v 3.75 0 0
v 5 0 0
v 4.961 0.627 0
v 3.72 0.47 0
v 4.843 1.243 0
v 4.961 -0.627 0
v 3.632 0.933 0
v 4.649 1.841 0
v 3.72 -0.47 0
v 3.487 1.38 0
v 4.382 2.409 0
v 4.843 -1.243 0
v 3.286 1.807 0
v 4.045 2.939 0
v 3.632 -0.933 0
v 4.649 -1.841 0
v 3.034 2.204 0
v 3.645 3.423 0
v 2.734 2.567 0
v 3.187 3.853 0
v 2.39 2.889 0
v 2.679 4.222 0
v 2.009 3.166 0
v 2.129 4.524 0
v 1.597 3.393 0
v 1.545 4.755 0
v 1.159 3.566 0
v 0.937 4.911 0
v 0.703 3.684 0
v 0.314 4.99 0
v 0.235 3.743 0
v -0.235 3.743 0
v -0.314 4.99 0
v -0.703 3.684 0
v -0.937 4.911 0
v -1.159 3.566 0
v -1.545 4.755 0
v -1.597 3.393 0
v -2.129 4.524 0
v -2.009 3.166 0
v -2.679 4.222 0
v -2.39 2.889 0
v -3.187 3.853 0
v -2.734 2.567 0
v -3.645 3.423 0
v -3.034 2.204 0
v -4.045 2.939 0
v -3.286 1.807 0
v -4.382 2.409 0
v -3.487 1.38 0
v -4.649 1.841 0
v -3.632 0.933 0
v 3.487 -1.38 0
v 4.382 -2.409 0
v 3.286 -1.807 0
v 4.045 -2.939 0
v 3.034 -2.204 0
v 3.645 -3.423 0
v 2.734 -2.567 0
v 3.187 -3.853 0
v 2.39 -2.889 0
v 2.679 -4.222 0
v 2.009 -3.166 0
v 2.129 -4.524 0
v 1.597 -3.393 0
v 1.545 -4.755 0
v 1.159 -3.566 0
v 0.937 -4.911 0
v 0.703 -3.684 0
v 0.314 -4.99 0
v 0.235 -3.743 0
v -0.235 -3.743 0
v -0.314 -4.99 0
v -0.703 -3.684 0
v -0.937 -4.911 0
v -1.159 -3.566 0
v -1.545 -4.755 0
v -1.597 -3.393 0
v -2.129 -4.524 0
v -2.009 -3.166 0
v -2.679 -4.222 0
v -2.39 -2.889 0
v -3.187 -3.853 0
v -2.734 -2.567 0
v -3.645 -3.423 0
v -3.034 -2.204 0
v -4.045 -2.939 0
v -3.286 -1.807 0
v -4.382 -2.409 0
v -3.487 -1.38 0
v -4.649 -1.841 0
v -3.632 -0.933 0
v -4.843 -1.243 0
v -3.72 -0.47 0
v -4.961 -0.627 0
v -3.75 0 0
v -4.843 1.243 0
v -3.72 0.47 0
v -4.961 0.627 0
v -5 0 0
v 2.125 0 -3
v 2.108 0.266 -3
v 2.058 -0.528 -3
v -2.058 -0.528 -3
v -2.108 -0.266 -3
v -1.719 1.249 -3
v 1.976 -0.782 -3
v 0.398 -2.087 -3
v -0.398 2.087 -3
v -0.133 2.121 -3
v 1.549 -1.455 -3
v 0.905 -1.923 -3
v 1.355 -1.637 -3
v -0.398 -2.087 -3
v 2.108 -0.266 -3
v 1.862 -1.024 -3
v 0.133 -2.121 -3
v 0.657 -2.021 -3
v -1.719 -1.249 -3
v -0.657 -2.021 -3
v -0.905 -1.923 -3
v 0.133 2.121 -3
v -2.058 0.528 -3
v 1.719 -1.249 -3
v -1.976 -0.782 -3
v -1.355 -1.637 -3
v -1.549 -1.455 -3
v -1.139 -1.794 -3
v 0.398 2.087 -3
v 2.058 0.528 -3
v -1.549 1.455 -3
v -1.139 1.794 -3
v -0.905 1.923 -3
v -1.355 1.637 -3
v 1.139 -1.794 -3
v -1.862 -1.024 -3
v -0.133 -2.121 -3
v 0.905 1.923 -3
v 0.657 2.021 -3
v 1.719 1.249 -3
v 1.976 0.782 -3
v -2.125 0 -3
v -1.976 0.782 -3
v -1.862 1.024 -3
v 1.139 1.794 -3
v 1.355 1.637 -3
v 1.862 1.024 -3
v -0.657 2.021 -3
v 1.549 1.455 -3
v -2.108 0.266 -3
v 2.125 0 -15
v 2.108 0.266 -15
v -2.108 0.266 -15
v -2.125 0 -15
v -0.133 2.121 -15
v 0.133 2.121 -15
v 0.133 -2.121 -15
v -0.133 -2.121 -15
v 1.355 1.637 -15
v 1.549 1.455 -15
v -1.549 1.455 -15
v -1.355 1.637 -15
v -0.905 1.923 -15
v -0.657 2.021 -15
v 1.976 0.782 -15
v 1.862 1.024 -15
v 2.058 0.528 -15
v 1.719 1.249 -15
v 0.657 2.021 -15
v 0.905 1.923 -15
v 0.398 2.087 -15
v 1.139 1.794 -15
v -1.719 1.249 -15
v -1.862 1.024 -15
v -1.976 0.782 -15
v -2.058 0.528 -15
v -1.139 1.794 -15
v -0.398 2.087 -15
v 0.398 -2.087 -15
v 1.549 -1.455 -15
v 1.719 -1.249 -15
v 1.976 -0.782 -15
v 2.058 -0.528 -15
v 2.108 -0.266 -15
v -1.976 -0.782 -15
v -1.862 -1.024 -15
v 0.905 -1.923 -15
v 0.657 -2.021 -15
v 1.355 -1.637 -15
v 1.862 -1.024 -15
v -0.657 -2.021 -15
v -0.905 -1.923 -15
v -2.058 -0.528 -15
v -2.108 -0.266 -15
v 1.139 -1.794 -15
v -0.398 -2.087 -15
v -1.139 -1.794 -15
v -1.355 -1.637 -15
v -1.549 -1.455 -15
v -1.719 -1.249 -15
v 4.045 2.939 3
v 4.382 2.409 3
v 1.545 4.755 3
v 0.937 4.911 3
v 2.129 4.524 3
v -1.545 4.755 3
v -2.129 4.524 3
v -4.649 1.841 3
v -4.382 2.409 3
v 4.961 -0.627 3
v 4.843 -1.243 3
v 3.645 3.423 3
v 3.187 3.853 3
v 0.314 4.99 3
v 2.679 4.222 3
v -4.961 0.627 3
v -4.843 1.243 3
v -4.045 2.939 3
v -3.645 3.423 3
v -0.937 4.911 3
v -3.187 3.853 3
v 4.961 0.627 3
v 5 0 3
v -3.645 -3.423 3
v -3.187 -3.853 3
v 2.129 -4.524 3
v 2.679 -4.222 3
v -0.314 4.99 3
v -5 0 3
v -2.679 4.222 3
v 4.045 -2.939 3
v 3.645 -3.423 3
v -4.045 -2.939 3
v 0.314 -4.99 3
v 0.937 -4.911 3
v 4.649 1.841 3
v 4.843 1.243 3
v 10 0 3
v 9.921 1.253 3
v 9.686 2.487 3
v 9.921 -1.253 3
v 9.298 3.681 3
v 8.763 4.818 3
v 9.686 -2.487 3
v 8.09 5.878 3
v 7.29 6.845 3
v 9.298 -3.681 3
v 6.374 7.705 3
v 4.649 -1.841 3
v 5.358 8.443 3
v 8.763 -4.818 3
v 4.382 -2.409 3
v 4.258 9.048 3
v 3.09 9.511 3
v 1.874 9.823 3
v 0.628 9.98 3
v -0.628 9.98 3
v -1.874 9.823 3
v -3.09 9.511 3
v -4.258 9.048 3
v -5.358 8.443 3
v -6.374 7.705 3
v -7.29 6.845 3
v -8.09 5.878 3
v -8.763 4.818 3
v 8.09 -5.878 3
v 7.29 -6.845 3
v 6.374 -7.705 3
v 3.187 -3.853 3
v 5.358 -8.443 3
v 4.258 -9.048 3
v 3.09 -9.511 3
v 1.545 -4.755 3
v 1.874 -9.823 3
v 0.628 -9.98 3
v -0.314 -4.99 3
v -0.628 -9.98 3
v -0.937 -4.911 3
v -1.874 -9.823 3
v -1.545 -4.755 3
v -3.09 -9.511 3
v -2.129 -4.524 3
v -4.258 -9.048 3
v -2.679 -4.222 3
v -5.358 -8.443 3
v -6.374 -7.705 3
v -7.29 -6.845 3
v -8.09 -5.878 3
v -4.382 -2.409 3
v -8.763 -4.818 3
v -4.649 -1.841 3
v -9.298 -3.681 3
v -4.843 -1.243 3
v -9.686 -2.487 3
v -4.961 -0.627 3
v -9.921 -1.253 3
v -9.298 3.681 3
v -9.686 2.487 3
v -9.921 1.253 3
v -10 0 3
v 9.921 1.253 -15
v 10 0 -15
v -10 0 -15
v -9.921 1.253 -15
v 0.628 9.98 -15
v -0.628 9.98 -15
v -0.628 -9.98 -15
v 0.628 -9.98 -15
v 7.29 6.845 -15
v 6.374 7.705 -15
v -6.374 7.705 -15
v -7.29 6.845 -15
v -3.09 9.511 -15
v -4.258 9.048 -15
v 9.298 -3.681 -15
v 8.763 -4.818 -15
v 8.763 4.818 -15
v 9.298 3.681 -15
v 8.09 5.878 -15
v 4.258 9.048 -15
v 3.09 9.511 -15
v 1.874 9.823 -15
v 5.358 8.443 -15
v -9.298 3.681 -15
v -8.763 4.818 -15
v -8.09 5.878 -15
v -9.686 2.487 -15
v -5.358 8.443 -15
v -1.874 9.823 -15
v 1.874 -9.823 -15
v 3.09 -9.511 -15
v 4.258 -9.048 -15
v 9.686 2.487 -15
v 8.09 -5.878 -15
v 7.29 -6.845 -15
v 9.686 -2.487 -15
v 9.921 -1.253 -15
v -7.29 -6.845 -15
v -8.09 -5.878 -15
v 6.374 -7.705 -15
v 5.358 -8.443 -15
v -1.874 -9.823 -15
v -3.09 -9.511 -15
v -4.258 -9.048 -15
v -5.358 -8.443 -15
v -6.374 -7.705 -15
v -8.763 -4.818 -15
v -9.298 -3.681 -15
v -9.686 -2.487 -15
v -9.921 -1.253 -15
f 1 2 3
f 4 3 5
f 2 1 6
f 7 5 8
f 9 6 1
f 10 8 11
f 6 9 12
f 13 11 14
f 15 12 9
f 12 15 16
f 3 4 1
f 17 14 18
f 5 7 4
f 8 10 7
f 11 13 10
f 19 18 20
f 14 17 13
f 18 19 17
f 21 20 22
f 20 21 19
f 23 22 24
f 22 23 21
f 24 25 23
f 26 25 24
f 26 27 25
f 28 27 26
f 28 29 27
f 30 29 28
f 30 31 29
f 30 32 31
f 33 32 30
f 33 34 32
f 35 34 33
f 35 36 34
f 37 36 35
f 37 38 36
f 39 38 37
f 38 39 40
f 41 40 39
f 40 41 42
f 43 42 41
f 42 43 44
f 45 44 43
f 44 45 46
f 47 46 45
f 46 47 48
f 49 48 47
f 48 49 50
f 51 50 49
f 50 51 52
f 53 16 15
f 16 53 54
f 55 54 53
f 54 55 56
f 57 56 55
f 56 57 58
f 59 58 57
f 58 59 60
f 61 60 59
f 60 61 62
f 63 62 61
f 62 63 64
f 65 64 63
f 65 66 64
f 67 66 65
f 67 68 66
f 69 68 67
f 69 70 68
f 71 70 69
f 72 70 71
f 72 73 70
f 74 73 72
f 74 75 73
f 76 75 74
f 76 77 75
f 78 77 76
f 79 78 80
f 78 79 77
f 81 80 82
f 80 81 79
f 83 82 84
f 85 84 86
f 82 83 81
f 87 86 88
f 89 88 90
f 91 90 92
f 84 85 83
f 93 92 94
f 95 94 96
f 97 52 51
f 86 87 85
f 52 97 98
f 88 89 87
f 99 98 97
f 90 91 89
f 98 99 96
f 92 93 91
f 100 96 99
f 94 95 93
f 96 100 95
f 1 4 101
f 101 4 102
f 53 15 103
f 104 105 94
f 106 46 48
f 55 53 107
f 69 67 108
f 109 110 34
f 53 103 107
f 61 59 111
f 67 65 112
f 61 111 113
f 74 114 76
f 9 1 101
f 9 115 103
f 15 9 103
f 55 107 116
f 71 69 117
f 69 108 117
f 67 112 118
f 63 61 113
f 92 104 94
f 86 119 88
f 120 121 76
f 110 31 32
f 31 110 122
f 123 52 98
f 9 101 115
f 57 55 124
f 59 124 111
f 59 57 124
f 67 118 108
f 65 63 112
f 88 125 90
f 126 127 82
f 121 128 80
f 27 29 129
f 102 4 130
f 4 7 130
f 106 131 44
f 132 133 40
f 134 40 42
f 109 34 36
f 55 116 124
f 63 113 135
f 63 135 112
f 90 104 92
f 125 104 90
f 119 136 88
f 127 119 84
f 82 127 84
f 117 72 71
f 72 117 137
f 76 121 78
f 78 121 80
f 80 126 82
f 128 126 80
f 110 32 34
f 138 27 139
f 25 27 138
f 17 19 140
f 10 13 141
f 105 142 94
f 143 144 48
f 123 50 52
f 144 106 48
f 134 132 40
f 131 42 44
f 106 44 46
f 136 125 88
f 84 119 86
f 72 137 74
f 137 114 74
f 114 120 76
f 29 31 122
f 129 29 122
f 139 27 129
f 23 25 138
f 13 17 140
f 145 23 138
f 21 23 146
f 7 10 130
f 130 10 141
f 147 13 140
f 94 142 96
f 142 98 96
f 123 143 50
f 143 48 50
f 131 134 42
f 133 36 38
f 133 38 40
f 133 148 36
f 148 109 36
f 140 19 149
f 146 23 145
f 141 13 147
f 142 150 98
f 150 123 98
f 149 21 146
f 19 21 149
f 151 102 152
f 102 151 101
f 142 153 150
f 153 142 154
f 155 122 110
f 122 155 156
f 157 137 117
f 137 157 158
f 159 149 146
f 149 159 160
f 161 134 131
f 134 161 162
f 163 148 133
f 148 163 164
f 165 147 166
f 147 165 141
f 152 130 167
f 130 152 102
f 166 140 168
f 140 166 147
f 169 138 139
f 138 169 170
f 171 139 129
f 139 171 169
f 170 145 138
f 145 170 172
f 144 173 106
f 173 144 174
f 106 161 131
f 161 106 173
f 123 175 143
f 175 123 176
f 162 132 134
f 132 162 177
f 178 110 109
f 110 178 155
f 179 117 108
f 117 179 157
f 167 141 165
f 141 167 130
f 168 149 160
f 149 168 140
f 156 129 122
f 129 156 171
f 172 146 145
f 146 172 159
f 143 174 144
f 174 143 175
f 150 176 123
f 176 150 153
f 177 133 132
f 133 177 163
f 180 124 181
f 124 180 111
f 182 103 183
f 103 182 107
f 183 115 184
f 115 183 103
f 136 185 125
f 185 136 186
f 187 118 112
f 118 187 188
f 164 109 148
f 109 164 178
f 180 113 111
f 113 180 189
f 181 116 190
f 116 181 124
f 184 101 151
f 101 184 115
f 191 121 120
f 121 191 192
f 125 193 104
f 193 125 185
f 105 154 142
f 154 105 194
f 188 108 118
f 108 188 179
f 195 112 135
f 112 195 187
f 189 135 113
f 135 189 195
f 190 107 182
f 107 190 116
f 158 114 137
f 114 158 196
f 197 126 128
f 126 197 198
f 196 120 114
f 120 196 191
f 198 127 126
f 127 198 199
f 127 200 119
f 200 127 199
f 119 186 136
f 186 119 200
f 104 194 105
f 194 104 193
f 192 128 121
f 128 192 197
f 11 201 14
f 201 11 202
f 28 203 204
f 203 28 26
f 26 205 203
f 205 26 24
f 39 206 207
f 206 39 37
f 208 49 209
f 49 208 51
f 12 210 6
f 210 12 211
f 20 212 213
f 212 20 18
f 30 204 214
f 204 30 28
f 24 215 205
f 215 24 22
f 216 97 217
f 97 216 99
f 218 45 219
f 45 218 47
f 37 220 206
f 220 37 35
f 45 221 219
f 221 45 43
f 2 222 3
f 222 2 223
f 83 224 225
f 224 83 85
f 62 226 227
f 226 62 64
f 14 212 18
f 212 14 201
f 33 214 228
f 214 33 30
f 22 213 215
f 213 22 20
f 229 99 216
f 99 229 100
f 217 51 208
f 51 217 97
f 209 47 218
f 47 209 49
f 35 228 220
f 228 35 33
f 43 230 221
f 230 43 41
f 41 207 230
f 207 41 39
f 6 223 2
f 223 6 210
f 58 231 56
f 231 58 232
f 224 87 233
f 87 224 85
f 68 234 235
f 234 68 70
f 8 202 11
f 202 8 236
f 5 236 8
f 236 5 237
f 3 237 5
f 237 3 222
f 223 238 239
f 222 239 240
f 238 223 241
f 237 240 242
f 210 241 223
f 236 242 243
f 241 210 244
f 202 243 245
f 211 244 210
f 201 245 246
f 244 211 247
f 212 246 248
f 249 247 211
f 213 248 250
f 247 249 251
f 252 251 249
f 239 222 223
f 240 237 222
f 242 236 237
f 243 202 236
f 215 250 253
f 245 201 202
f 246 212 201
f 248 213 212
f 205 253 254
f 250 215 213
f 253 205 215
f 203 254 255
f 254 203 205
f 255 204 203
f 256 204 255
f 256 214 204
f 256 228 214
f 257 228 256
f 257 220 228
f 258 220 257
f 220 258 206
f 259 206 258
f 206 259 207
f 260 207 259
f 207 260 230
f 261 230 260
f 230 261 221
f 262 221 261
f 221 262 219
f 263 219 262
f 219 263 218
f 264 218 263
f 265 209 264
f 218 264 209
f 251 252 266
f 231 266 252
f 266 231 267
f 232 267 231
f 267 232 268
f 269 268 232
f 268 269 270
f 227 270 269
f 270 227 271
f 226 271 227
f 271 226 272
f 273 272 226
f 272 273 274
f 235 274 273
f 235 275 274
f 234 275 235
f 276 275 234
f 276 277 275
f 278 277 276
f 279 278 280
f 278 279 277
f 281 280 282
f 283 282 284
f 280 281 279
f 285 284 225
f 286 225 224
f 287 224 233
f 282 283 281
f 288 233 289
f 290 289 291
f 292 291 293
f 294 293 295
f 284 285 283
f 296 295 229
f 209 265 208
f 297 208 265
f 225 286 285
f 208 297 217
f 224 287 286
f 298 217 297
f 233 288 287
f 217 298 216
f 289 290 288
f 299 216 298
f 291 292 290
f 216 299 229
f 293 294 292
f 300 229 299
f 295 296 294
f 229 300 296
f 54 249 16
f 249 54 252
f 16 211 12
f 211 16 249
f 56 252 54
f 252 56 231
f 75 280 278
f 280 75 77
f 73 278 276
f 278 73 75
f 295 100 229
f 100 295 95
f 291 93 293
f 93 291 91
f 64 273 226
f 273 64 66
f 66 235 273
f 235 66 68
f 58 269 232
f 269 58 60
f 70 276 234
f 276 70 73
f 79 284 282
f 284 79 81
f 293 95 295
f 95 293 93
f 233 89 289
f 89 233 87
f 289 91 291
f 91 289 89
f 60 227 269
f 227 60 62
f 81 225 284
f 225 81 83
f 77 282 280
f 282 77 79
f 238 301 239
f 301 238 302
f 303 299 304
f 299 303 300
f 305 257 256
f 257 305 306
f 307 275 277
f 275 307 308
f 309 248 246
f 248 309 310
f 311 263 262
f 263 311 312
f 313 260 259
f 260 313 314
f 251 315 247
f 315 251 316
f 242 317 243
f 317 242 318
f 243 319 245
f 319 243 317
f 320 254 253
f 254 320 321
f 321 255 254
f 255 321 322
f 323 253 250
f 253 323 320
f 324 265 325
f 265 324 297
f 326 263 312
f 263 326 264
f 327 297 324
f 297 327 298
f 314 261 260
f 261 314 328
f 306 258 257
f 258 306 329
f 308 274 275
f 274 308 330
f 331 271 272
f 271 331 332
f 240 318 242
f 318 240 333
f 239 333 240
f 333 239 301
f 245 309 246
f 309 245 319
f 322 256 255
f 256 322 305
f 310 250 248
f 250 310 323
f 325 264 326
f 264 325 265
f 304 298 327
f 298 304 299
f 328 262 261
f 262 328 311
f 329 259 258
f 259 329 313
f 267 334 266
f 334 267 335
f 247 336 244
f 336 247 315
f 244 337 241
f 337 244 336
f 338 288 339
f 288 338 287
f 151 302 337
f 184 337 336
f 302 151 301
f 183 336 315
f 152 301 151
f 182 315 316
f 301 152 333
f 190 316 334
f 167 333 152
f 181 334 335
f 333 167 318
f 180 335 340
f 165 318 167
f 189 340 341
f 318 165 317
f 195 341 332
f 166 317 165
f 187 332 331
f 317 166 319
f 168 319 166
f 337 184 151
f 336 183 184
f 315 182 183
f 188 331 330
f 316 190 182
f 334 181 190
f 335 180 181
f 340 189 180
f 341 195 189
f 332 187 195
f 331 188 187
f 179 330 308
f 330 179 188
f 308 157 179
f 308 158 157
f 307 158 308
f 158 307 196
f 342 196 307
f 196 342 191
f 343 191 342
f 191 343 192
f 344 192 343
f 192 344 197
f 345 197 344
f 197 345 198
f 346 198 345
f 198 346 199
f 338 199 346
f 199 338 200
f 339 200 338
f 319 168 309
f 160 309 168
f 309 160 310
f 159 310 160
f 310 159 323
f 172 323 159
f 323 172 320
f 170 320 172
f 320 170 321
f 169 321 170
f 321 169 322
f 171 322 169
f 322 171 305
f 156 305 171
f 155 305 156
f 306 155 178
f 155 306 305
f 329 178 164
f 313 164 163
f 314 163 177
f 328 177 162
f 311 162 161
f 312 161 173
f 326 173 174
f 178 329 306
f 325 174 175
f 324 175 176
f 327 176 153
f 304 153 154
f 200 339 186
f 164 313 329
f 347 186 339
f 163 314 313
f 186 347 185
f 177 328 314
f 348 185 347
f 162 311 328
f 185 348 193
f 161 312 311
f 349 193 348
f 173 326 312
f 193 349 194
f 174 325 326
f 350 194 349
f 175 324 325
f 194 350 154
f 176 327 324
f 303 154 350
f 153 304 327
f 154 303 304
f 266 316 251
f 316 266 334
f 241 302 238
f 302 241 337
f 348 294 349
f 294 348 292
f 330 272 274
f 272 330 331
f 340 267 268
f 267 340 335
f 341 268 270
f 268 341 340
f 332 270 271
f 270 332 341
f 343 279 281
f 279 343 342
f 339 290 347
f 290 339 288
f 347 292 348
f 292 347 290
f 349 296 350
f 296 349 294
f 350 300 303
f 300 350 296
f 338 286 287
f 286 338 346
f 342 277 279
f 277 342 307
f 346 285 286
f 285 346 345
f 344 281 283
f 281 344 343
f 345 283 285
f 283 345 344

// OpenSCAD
$fn = 50;

difference() {
	union() {
		translate(v = [0, 0, -15.0]) {
			cylinder(h = 18, r = 10.0);
		}
	}
	union() {
		translate(v = [0, 0, 0]) {
			rotate(a = [0, 0, 0]) {
				difference() {
					union() {
						translate(v = [0, 0, -18.0]) {
							cylinder(h = 18, r = 2.0);
						}
						translate(v = [0, 0, -3]) {
							cylinder(h = 3, r1 = 2.125, r2 = 3.75);
						}
						translate(v = [0, 0, -18.0]) {
							cylinder(h = 18, r = 2.125);
						}
						translate(v = [0, 0, -18.0]) {
							cylinder(h = 18, r = 2.0);
						}
					}
					union();
				}
			}
		}
		#cylinder(h = 3, r = 5.0);
	}
}
